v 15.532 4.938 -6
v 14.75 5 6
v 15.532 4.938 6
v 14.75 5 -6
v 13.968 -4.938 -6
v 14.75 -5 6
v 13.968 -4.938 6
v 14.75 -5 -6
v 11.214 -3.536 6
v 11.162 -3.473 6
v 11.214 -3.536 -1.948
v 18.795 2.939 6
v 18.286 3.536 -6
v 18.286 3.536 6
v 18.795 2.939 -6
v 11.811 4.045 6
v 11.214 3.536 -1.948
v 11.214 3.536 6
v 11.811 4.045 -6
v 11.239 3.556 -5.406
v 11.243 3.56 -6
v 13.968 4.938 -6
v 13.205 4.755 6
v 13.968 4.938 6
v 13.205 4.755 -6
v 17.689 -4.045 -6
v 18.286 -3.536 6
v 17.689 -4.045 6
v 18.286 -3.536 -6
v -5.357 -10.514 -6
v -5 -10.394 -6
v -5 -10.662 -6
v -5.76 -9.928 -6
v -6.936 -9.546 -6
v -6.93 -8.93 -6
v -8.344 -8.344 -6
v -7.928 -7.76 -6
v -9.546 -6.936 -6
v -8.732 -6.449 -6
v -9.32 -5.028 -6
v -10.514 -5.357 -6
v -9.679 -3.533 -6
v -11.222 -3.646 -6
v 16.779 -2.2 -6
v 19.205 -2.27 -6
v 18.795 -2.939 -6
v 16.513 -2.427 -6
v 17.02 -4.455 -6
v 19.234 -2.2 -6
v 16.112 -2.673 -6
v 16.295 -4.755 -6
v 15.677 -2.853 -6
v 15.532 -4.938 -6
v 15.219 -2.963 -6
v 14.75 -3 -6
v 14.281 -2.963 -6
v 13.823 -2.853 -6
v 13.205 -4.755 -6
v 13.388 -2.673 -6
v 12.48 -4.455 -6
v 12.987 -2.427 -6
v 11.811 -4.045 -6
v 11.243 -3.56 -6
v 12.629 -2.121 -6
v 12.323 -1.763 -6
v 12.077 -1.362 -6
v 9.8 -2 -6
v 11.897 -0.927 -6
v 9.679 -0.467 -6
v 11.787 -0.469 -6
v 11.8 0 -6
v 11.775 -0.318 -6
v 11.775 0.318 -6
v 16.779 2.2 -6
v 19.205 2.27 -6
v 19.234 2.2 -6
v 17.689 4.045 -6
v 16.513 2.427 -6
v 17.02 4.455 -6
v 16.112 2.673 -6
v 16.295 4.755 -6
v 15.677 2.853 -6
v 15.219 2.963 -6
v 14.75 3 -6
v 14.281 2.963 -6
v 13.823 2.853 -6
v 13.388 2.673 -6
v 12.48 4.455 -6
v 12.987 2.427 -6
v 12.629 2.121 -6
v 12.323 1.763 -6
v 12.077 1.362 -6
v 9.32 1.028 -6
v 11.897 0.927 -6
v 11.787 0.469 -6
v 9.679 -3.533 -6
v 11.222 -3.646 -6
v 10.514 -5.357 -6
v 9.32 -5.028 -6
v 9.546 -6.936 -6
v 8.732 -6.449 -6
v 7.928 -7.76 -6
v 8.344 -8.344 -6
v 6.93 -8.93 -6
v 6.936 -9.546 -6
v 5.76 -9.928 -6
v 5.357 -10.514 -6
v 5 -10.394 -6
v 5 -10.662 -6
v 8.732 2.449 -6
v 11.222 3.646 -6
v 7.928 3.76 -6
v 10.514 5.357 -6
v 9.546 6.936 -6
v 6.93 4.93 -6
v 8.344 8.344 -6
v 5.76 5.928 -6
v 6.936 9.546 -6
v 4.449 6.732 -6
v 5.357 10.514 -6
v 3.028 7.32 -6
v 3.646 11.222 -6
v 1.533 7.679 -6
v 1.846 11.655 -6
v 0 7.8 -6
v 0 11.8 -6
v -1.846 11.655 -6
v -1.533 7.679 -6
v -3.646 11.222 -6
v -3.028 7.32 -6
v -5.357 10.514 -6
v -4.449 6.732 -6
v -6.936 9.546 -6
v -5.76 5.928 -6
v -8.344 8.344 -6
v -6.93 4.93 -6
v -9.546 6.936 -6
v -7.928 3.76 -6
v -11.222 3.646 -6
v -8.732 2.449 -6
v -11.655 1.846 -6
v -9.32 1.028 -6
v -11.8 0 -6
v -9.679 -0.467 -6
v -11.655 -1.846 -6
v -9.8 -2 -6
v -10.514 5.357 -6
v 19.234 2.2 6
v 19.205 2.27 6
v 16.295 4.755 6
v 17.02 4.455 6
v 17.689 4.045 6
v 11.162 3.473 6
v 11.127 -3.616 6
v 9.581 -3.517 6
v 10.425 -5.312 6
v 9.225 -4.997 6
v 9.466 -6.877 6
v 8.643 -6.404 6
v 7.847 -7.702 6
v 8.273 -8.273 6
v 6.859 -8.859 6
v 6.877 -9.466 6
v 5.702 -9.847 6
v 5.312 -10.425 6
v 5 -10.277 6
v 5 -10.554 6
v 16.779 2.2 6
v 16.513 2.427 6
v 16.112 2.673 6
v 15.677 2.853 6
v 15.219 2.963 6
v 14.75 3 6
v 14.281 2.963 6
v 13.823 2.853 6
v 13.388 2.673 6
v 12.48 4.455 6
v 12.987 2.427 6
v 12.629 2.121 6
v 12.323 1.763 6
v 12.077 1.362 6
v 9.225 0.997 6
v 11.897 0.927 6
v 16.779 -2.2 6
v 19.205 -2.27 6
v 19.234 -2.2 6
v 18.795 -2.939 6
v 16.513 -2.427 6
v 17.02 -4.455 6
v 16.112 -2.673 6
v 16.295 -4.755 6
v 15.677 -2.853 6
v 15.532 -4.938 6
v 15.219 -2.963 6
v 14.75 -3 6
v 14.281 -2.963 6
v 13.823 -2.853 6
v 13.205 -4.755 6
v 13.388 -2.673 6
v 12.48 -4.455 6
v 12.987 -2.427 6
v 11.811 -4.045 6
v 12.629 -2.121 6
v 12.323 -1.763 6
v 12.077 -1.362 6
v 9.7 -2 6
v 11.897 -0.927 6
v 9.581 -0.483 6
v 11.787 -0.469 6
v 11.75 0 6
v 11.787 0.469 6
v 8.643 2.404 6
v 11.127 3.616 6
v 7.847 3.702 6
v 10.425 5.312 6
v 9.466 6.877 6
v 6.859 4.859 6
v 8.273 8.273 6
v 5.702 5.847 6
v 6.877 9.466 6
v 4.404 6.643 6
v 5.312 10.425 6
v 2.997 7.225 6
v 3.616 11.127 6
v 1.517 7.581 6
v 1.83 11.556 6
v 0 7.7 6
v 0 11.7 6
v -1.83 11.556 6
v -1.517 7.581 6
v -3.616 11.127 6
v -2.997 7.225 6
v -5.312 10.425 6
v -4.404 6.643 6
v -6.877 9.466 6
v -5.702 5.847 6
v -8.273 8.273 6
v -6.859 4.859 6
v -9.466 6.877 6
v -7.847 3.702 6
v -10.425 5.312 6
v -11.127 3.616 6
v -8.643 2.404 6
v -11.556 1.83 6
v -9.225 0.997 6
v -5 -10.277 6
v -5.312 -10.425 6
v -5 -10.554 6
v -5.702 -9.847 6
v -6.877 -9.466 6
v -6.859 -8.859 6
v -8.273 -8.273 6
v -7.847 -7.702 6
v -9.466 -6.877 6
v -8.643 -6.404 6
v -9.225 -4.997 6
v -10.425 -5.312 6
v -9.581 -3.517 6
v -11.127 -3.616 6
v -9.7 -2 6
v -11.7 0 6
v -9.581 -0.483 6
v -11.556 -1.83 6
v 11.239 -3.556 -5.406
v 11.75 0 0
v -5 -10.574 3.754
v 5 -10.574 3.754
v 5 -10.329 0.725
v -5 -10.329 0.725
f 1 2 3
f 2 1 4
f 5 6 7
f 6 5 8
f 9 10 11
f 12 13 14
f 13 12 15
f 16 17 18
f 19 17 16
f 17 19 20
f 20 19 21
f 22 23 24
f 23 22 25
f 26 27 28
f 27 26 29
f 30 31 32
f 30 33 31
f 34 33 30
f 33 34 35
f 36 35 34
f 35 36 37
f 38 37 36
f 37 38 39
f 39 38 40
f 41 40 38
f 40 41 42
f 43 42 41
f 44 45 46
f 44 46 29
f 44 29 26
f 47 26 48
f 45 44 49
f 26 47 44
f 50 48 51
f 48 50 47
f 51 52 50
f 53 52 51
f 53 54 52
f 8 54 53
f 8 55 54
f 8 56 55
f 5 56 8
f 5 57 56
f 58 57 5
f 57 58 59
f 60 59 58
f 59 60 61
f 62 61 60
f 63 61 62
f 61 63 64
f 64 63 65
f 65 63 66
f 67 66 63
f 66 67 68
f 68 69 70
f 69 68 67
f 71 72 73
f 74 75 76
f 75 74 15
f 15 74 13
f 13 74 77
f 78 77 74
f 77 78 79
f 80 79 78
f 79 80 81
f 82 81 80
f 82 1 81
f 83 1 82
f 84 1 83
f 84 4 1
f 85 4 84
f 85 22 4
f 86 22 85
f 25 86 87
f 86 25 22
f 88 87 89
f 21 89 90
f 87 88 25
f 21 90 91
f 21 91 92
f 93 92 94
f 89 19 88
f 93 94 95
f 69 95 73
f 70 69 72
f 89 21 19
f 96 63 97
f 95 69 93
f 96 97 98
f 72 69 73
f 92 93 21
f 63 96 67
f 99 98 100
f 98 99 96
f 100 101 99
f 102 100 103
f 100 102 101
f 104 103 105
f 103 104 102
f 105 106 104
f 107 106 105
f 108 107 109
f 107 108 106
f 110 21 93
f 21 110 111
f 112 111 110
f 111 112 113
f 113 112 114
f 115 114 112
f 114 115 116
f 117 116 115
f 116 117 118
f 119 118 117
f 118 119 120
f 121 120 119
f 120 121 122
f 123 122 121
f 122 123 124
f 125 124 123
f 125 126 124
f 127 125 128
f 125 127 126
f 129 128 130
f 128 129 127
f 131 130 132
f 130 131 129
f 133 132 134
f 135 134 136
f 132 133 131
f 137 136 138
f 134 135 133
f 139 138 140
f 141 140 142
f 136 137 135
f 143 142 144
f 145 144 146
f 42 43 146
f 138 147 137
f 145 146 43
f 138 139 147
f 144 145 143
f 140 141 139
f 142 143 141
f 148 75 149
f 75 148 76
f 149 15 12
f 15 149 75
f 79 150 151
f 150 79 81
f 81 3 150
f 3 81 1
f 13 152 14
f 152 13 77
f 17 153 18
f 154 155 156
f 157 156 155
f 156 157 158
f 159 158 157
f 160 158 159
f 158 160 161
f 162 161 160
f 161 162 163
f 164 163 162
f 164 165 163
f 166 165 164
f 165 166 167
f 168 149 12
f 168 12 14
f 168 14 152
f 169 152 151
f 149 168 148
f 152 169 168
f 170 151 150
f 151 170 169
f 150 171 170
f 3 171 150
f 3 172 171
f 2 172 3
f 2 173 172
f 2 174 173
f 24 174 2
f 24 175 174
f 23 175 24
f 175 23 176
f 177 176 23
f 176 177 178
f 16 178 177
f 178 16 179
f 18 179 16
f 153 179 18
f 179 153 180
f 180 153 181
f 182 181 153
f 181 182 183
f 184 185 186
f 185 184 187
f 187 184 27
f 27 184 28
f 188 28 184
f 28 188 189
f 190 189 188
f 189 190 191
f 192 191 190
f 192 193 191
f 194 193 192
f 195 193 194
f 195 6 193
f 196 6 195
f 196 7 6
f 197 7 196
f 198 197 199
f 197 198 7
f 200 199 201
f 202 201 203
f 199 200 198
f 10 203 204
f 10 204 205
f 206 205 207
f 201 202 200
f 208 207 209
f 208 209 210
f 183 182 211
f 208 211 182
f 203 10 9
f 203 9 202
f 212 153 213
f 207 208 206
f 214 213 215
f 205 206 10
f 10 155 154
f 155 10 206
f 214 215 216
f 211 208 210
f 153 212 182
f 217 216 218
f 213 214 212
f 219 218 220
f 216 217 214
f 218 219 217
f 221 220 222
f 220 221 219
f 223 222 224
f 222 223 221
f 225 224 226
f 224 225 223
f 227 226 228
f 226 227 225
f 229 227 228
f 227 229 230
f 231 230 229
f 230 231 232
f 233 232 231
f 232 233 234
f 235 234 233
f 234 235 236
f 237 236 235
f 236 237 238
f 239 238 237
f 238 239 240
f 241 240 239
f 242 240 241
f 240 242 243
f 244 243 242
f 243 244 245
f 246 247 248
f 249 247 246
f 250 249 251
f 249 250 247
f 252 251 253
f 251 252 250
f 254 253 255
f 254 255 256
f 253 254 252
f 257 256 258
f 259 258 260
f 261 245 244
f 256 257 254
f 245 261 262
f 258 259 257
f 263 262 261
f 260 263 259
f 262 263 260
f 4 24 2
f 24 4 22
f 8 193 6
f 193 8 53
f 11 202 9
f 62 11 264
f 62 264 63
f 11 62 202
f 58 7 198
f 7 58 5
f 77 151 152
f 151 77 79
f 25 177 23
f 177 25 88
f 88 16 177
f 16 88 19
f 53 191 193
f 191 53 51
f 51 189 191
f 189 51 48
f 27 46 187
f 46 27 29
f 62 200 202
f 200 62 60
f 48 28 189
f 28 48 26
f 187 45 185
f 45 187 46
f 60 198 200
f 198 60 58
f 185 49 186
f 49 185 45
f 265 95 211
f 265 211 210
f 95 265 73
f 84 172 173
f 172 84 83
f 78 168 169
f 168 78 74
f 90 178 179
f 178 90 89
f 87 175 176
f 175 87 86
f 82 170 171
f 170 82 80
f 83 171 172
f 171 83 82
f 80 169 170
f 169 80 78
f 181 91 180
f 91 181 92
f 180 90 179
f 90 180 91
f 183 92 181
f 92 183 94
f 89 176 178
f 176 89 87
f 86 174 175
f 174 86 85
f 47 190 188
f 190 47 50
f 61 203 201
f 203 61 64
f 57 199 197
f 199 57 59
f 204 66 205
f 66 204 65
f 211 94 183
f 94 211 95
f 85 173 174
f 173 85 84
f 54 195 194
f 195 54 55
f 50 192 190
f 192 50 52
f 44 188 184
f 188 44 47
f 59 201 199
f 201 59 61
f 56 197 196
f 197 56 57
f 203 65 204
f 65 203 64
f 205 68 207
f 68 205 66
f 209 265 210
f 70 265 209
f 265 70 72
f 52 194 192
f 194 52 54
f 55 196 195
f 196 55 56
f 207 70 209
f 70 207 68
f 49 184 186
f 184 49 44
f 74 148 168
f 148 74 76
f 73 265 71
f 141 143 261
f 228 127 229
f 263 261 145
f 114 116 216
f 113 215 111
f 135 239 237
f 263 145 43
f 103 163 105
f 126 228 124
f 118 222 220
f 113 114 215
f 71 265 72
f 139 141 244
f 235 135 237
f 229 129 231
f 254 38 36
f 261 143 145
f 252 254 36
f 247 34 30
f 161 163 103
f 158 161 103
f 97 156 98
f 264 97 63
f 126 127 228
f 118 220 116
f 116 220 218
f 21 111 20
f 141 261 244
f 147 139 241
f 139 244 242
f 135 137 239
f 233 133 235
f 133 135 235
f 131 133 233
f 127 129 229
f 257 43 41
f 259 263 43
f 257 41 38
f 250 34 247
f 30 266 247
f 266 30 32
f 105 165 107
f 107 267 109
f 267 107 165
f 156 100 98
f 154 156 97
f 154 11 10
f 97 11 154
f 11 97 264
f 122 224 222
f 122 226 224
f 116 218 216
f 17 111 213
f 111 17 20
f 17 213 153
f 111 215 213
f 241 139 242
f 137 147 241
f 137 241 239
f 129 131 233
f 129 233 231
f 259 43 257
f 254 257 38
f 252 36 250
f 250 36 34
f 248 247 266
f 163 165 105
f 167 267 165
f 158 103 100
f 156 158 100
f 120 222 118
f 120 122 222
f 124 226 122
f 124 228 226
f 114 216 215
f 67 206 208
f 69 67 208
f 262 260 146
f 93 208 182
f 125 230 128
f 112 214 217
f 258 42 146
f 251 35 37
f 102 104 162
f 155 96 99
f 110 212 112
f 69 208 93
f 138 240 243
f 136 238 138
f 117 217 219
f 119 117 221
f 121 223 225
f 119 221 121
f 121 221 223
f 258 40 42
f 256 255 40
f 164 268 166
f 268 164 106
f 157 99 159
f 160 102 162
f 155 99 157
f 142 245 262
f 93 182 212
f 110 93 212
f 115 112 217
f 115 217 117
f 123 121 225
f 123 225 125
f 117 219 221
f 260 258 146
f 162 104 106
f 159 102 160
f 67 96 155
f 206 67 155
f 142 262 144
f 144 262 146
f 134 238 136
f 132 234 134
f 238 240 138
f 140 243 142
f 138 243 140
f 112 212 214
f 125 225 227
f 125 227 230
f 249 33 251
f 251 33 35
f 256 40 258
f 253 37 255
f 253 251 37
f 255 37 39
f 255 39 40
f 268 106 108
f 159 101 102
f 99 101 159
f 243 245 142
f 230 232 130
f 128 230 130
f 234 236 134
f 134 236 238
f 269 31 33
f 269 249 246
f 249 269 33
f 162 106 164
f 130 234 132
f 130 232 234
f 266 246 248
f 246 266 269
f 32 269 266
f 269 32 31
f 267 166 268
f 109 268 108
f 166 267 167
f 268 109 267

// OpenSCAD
de2=19.4;// diamètre flute bas
de1=19.6; // diamètre flute haut
de=(de1+de2)/2;
he=12; // largeur pince
e=4;

dmicro=6;
douverture=dmicro-1.6;
$fn=40;
module serre_micro()
{
    translate([de/2+e/2+dmicro/2,0,1])
        union()
        {
            difference()
            {
                cylinder(d=dmicro+2*e,h=he,center=true);
                cylinder(d=dmicro+e,h=he,center=true);
                translate([-6,0,0])
                        cube([5,de,he],center=true);        
            }
            difference()
            {
                translate([dmicro/2,0,0])
                    cube([e,douverture-0.5,he],center=true);
                cylinder(d=dmicro,h=he,center=true);
            }
        }
}
module porte_micro()
{
    difference()
    {
        union()
        {
            difference()
            {
                // tube flute
                cylinder(d1=de1+e,d2=de2+e,h=he,center=true); 
                // extrusion tube flute
                translate([0,-e/2,0])
                    cylinder(d1=de1,d2=de2,h=he,center=true); 
            }
            translate([de/2+e/2+dmicro/2,0,0])
            {
                difference()
                {
                    // tube micro
                    cylinder(d=dmicro+e,h=he,center=true); 
                    // extrusion tube micro
                    cylinder(d=dmicro,h=he,center=true);
                    // extrusion passage micro
                    translate([dmicro-e/2,0,0])
                        cube([1.5*e,douverture,he],center=true); 
                }
            }
        }
        rotate([0,0,0])
            translate([0,-de+5,0])
                cube([10,2*de,he],center=true);
    }
}
porte_micro();
*serre_micro();
